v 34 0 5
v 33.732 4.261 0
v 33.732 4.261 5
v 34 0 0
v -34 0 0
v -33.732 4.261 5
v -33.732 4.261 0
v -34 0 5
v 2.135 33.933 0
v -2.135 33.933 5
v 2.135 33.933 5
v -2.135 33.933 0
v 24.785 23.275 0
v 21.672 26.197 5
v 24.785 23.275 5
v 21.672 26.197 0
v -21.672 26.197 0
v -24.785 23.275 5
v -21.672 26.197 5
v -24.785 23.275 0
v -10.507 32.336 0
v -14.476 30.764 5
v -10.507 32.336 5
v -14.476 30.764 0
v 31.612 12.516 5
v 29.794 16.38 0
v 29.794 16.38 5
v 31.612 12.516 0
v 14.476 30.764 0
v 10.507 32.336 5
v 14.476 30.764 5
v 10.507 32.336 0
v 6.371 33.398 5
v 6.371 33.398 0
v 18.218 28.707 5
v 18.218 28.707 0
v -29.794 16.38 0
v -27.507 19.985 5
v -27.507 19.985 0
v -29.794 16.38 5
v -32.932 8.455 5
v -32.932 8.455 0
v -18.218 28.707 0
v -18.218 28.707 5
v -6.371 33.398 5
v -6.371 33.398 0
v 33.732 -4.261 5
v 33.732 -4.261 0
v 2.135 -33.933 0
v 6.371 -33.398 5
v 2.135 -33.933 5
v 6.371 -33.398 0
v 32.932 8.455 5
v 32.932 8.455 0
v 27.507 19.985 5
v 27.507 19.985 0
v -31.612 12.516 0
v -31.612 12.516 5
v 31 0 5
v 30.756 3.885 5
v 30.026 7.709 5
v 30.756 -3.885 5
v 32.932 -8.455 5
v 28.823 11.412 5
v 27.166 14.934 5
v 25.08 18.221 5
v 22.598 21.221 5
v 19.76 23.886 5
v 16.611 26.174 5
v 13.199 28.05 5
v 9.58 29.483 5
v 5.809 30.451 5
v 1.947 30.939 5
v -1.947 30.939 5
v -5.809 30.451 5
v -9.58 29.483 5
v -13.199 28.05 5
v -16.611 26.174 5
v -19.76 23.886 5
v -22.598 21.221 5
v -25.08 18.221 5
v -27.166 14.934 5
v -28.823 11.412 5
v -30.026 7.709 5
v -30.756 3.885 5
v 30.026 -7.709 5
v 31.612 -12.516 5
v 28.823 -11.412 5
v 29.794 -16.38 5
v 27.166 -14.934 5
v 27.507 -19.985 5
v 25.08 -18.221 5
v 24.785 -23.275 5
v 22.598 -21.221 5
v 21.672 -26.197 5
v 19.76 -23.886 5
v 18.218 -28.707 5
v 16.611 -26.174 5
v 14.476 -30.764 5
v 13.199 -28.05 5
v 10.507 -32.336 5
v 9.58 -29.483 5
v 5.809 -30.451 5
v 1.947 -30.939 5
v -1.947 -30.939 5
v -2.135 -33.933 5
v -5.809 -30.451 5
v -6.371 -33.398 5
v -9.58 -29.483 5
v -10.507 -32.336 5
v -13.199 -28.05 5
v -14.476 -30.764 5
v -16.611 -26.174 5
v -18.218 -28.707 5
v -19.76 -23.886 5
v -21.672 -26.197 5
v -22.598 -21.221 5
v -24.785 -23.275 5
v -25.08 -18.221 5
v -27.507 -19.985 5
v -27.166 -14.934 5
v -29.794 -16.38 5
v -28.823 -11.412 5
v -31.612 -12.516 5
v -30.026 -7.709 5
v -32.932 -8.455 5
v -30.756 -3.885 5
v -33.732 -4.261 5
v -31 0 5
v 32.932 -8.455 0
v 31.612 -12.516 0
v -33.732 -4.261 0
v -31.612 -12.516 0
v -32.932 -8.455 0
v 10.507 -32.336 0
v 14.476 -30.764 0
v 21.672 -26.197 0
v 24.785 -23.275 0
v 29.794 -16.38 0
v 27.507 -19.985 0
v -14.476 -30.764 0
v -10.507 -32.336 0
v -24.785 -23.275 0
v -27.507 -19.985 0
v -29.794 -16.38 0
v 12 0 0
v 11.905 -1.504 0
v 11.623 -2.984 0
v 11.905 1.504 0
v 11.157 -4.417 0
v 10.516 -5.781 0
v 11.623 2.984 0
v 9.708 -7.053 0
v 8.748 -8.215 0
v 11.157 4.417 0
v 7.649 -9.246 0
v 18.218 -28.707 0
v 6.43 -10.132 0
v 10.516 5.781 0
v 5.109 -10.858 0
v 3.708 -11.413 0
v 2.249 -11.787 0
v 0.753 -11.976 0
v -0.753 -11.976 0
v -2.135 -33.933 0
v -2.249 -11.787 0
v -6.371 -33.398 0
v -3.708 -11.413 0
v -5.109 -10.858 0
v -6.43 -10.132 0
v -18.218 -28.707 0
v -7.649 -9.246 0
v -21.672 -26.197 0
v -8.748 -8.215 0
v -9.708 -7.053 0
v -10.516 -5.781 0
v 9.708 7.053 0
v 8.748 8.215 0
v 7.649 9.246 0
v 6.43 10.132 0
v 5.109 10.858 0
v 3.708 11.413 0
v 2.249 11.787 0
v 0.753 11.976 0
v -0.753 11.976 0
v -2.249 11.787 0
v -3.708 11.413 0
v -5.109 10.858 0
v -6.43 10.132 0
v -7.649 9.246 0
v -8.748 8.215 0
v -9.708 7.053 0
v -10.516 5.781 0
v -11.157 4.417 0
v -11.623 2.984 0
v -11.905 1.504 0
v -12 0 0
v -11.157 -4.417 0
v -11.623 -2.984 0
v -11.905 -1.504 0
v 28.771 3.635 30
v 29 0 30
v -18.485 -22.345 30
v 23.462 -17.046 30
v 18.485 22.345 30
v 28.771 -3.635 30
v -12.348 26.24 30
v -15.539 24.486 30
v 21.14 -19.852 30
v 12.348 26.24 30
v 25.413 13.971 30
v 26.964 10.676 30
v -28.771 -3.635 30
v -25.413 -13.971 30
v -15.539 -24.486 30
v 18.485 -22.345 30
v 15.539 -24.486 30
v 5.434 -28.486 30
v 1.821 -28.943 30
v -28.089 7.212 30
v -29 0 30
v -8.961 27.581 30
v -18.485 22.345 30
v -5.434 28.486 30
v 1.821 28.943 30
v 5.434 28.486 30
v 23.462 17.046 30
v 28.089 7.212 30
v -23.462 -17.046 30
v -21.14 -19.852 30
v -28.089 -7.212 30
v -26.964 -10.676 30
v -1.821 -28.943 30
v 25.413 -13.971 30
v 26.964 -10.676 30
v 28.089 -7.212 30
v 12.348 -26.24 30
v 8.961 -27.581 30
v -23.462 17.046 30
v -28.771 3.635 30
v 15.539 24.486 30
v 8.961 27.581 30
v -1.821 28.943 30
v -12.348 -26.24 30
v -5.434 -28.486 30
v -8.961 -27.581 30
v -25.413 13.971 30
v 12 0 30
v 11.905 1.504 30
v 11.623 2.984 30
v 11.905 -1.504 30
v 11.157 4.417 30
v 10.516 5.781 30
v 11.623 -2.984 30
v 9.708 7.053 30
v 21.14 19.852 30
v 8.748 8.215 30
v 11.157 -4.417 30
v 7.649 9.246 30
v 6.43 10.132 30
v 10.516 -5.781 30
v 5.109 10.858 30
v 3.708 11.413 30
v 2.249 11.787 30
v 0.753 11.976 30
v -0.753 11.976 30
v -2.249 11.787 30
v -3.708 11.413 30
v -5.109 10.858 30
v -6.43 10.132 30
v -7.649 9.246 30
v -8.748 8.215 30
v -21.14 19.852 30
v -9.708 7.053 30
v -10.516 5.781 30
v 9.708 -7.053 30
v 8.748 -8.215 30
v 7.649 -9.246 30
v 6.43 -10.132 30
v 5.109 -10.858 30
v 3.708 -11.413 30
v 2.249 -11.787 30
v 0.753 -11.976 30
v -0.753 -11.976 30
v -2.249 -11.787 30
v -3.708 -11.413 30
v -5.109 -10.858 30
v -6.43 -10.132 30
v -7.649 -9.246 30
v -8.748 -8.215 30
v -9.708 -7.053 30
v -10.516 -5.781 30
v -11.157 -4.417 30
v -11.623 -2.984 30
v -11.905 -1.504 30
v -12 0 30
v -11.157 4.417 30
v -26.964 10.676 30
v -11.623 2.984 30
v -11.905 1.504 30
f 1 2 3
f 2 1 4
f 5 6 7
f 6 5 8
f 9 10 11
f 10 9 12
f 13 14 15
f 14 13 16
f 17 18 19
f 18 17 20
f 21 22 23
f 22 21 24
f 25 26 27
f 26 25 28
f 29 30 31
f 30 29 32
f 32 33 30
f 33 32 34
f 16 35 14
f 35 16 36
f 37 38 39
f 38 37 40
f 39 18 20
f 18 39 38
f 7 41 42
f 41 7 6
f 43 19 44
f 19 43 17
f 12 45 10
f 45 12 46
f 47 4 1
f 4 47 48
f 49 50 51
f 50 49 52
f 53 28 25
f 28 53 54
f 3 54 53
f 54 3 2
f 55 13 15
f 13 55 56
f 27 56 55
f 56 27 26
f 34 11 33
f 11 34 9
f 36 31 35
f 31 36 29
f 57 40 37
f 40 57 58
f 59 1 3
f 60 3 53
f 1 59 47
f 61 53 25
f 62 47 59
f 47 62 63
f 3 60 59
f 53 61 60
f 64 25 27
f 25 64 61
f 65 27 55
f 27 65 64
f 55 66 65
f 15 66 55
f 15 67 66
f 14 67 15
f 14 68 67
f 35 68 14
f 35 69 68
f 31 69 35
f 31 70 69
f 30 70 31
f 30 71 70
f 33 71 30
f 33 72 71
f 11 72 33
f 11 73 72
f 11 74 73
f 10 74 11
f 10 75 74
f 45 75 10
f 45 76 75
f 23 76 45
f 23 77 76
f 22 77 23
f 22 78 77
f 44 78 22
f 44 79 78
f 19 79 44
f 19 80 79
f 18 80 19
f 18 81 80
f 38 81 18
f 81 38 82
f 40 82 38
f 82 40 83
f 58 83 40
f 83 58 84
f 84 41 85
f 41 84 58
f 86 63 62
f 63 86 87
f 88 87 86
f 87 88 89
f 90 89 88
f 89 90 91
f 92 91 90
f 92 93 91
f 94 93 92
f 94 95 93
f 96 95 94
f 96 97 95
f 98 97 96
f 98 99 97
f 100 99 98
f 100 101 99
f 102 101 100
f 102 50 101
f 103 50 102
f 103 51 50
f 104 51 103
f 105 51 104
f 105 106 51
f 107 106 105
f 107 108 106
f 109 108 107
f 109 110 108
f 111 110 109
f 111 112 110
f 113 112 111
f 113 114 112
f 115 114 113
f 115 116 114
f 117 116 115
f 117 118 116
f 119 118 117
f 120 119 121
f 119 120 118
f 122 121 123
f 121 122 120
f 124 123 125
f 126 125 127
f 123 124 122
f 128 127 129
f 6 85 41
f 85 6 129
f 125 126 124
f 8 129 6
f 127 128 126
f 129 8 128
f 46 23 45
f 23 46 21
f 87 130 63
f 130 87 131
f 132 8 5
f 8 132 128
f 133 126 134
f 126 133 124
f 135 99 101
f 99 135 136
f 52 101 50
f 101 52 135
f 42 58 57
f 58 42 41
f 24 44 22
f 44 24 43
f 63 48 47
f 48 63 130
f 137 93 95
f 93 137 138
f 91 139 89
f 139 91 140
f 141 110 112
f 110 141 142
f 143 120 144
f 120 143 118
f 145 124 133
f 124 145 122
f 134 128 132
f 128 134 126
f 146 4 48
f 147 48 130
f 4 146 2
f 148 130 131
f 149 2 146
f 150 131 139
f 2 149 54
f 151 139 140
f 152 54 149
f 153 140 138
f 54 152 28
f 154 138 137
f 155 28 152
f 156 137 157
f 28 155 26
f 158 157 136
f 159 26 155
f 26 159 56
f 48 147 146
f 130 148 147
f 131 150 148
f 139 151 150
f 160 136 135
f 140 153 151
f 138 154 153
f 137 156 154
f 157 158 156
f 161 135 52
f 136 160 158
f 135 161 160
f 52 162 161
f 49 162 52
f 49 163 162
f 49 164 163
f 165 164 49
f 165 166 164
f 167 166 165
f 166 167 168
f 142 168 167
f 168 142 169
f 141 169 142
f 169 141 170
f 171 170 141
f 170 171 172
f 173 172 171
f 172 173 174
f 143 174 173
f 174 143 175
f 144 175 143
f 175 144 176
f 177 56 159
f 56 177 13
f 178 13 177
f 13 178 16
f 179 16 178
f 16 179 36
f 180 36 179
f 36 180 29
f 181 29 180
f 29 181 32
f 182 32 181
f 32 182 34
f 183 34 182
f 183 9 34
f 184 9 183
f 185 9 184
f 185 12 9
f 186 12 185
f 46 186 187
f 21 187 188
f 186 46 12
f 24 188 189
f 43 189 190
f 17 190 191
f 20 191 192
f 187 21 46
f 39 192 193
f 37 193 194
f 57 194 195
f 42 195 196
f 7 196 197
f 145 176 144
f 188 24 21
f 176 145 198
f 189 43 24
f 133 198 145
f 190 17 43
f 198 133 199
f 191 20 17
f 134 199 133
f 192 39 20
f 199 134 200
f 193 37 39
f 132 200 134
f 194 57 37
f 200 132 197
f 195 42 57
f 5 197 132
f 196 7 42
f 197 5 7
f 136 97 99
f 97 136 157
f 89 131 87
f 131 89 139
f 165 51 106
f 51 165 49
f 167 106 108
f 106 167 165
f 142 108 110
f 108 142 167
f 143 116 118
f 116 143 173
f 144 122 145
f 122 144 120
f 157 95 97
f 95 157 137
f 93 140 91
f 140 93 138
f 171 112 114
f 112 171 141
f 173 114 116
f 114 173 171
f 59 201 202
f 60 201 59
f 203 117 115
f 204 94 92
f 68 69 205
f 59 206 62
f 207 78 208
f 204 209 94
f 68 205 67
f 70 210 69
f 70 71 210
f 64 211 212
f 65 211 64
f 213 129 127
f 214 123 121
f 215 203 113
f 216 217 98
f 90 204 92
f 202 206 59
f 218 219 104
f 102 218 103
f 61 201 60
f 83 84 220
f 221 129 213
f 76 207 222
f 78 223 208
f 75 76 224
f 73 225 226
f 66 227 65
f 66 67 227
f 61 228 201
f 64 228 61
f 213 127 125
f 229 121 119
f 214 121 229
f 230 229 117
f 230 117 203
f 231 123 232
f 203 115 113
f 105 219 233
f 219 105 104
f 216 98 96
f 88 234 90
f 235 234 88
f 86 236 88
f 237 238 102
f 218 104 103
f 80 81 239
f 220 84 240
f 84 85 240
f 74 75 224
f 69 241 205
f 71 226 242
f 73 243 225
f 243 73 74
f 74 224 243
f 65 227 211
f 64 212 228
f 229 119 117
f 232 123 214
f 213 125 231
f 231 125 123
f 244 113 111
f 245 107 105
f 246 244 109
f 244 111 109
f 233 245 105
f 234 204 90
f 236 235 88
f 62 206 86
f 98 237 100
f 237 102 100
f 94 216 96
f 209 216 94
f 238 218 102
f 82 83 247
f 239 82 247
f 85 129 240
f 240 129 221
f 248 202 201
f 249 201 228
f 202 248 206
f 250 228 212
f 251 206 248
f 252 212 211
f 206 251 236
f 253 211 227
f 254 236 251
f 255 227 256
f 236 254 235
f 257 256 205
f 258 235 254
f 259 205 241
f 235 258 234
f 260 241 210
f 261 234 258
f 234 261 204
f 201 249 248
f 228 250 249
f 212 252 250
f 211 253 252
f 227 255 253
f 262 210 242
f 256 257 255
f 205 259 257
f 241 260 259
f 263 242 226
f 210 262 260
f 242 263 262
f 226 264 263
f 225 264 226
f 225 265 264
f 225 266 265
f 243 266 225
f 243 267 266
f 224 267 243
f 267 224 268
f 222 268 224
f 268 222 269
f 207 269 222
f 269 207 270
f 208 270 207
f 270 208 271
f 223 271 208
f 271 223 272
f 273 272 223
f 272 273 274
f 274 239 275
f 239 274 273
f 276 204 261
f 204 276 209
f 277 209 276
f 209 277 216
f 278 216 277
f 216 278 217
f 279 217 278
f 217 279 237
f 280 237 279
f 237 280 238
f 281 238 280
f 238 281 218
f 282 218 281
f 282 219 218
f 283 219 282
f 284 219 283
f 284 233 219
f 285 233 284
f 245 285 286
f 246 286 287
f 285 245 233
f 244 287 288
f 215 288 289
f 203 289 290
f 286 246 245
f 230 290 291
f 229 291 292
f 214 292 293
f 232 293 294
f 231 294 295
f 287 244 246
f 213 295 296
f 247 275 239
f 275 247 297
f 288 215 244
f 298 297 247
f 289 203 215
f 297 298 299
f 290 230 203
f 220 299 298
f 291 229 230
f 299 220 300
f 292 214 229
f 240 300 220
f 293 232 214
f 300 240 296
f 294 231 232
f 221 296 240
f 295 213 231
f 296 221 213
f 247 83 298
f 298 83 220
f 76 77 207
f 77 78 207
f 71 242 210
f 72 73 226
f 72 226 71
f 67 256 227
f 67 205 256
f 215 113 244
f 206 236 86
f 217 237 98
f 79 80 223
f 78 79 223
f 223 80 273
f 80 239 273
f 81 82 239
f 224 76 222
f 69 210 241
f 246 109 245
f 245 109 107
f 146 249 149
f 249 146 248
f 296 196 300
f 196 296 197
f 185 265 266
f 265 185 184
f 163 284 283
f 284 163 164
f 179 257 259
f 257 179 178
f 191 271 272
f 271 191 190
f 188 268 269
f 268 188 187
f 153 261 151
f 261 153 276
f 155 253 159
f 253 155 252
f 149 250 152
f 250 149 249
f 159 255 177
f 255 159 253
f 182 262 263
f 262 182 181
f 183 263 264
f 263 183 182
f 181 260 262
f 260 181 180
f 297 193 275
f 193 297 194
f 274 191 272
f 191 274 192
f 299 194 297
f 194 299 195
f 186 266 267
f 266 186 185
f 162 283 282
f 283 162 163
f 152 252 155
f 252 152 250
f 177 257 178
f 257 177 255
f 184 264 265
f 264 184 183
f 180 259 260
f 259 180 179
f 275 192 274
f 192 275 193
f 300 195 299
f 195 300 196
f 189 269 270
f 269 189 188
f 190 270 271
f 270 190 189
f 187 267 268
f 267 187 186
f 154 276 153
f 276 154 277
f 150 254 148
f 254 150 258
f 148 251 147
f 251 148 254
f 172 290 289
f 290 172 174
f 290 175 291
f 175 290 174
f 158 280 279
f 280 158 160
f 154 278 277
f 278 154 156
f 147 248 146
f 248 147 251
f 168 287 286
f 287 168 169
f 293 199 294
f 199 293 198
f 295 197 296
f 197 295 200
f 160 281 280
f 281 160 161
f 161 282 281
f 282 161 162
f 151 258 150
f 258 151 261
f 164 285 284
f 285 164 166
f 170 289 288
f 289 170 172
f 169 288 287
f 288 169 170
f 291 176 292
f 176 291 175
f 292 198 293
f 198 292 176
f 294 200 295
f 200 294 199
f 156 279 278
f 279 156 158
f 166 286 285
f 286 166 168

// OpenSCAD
$fn=50;
difference() {
    union() {
        cylinder(5,68/2,68/2);
        translate([0,0,5]) cylinder(25,62/2,58/2);
    }
    cylinder(30,24/2,24/2);
}
